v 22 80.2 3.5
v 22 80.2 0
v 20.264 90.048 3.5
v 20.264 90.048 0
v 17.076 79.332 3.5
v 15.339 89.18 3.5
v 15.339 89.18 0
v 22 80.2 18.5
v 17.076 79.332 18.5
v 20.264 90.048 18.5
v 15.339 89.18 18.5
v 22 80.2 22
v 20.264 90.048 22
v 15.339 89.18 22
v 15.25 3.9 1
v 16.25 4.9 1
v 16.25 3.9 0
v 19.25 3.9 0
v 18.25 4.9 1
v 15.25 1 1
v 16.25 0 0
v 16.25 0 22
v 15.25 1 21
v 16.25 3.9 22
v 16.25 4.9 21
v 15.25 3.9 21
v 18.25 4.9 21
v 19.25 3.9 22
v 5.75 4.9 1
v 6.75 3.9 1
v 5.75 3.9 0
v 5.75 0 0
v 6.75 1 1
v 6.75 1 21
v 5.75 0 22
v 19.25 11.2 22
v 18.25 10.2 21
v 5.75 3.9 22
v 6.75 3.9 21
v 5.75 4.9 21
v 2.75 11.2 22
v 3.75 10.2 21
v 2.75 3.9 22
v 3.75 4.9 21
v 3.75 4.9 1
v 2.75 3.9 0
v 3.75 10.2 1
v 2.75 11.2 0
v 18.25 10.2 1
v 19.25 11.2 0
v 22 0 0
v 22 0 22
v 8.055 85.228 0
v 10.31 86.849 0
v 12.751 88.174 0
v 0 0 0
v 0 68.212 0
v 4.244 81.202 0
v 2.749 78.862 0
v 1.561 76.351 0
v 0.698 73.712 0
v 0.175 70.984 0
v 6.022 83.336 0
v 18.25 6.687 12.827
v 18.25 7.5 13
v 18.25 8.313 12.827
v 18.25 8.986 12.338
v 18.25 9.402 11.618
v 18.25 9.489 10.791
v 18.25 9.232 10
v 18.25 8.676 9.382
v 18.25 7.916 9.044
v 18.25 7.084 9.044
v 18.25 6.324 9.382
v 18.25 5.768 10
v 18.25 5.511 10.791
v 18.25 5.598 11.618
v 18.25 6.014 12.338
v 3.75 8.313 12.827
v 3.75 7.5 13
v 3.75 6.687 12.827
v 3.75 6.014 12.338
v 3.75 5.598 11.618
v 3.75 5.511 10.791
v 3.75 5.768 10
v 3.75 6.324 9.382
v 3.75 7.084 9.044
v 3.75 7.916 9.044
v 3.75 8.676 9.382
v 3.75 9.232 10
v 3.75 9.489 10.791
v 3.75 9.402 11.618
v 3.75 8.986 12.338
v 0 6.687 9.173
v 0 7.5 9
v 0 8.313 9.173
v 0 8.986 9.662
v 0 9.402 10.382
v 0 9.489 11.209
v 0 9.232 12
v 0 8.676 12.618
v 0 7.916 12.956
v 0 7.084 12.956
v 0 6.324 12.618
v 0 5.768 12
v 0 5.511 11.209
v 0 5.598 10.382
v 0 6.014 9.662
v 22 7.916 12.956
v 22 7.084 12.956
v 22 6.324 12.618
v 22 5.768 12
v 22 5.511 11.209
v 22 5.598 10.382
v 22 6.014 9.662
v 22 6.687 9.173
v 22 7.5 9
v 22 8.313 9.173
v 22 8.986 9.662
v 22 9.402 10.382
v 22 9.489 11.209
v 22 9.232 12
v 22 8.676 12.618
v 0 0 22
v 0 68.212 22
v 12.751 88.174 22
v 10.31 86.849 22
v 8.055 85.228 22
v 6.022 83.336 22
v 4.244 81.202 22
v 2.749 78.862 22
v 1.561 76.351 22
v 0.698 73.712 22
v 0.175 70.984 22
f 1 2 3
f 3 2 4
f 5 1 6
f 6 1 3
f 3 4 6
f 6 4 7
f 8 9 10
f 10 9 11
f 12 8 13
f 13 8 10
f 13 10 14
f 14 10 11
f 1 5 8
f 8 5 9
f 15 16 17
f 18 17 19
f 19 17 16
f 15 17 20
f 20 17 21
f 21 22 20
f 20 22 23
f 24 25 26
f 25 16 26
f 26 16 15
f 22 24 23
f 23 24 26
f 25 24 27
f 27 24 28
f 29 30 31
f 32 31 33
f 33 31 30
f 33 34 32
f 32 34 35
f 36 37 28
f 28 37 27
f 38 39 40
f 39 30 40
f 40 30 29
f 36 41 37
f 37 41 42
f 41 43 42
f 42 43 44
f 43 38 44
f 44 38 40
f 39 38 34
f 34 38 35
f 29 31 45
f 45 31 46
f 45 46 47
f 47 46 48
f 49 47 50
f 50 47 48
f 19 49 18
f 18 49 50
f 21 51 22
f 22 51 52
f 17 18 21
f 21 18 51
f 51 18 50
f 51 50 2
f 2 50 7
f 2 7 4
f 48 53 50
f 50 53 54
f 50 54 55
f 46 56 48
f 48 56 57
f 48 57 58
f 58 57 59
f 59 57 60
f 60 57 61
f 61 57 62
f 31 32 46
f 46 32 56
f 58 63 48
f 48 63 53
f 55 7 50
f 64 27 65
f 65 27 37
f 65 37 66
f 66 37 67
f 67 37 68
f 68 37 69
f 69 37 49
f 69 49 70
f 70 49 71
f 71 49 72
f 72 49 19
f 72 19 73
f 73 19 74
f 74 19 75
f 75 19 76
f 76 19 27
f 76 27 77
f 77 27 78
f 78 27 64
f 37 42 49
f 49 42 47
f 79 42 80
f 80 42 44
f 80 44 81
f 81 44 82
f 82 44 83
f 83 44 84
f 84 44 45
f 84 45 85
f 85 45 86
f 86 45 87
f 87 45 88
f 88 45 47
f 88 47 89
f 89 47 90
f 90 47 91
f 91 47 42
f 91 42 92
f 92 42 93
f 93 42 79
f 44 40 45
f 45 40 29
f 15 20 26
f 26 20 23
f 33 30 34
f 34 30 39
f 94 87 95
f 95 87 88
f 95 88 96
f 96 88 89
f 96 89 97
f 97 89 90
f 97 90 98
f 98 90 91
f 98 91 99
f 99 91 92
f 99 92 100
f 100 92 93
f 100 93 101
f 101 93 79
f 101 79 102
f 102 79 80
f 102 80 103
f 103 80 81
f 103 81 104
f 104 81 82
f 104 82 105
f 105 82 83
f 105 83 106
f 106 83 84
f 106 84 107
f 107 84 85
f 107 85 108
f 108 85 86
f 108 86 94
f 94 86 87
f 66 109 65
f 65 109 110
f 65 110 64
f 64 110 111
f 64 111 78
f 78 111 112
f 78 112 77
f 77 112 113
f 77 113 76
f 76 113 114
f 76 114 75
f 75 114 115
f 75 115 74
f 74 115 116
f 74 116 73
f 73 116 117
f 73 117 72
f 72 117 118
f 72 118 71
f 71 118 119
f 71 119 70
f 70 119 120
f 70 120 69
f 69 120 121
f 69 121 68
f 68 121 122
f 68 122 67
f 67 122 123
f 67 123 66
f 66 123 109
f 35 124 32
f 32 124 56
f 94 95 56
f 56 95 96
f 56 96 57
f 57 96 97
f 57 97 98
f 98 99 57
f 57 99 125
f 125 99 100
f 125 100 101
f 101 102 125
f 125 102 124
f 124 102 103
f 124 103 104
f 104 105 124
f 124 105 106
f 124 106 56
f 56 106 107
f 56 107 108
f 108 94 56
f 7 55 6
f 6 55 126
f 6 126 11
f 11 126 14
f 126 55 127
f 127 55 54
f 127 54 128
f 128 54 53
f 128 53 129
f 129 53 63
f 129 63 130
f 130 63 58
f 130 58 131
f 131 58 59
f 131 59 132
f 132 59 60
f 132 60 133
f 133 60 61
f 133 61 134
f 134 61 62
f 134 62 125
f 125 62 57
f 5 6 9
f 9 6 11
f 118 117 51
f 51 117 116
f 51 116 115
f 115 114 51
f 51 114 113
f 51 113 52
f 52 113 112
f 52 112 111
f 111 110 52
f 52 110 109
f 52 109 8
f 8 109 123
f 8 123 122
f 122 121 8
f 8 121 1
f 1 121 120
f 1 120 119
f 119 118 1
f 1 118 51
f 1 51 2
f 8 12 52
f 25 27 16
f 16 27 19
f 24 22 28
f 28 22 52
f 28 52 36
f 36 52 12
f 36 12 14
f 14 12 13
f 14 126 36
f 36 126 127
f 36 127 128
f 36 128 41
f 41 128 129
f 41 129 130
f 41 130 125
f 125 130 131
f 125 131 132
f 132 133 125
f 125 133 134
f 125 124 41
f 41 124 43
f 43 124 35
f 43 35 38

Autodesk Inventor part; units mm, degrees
ref_plane "YZ Plane" through (0, 0, 0) normal (1, 0, 0) x (0, 1, 0)
ref_plane "XZ Plane" through (0, 0, 0) normal (0, 1, 0) x (-1, 0, 0)
ref_plane "XY Plane" through (0, 0, 0) normal (0, 0, 1) x (1, 0, 0)
sketch "Skizze1" plane through (0, 0, 0) normal (0, 0, 1) x (1, 0, 0)
  line L0 (0, 0) -> (6.75, 0)
  line L1 (6.75, 0) -> (6.75, 4.9)
  line L2 (6.75, 4.9) -> (3.75, 4.9)
  line L3 (3.75, 4.9) -> (3.75, 10.2)
  line L4 (3.75, 10.2) -> (18.25, 10.2)
  line L5 (18.25, 10.2) -> (18.25, 4.9)
  line L6 (18.25, 4.9) -> (15.25, 4.9)
  line L7 (15.25, 4.9) -> (15.25, 0)
  line L8 (15.25, 0) -> (22, 0)
  line L9 (22, 0) -> (22, 80.2)
  line L10 (0, 0) -> (0, 68.2123)
  line L11 (22, 80.2) -> (22, 98.8308) construction
  line L12 (22, 80.2) -> (17.076, 79.3318)
  line L13 (17.076, 79.3318) -> (15.3395, 89.1798)
  arc A0 (22, 90.2123) -> (15.3395, 89.1798) centre (22, 68.2123) ccw construction
  arc A1 (15.3395, 89.1798) -> (0, 68.2123) centre (22, 68.2123) ccw
  dimension "d0" = 14.5
  dimension "d1" = 5.3
  dimension "d2" = 4.9
  dimension "d3" = 22
  dimension "d4" = 8.5
  dimension "d5" = 5
  dimension "d6" = 10
  dimension "d21" = 70
  dimension "d22" = 80
extrude "Extrusion1" add sketch "Skizze1" along normal blind 22
sketch "Skizze2" plane through (22, 0, 0) normal (1, 0, 0) x (0, 0, -1)
  circle A0 centre (-11, 7.5) radius 2
  line L0 (0, 0) -> (-22, 0) projected
  line L1 (0, 0) -> (0, 80.2) projected
  point P0 (0, 65.2)
  dimension "d10" = 4
  dimension "d11" = 7.5
  dimension "d12" = 11
extrude "Extrusion2" cut sketch "Skizze2" against normal blind 22
chamfer "Fasen1" distance 1 angle 45 18 edges at (3.75, 7.55, 22) (11, 10.2, 22) (18.25, 7.55, 22) (16.75, 4.9, 22) (5.25, 4.9, 22) (6.75, 2.45, 22) (15.25, 2.45, 22) (18.25, 7.55, 0) (15.25, 2.45, 0) (16.75, 4.9, 0) (11, 10.2, 0) (3.75, 7.55, 0) (5.25, 4.9, 0) (6.75, 2.45, 0) (6.75, 4.9, 11) (15.25, 4.9, 11) (6.75, 0, 11) (15.25, 0, 11)
sketch "Skizze4" plane through (17.076, 79.3318, 22) normal (-0.1736482, 0.9848078, 0) x (0.9848078, 0.1736482, 0)
  line L0 (-18.7474, 0) -> (0, 0) projected
  line L1 (5, 22) -> (5, 0) projected
  line L2 (0, 0) -> (5, 0)
  line L3 (5, 0) -> (5, 3.5)
  line L4 (5, 3.5) -> (0, 3.5)
  line L5 (0, 3.5) -> (0, 0)
  line L6 (-8.9266, 22) -> (5, 22) projected
  line L7 (0, 22) -> (5, 22)
  line L8 (5, 22) -> (5, 18.5)
  line L9 (5, 18.5) -> (0, 18.5)
  line L10 (0, 18.5) -> (0, 22)
  point P0 (-30.5924, 22)
  point P1 (2.5, 18.5)
  point P2 (5, 18.5)
  point P3 (5, 0)
  dimension "d29" = 15
extrude "Extrusion4" add sketch "Skizze4" along normal blind 10
properties part number "Gripper_V2_10deg"
